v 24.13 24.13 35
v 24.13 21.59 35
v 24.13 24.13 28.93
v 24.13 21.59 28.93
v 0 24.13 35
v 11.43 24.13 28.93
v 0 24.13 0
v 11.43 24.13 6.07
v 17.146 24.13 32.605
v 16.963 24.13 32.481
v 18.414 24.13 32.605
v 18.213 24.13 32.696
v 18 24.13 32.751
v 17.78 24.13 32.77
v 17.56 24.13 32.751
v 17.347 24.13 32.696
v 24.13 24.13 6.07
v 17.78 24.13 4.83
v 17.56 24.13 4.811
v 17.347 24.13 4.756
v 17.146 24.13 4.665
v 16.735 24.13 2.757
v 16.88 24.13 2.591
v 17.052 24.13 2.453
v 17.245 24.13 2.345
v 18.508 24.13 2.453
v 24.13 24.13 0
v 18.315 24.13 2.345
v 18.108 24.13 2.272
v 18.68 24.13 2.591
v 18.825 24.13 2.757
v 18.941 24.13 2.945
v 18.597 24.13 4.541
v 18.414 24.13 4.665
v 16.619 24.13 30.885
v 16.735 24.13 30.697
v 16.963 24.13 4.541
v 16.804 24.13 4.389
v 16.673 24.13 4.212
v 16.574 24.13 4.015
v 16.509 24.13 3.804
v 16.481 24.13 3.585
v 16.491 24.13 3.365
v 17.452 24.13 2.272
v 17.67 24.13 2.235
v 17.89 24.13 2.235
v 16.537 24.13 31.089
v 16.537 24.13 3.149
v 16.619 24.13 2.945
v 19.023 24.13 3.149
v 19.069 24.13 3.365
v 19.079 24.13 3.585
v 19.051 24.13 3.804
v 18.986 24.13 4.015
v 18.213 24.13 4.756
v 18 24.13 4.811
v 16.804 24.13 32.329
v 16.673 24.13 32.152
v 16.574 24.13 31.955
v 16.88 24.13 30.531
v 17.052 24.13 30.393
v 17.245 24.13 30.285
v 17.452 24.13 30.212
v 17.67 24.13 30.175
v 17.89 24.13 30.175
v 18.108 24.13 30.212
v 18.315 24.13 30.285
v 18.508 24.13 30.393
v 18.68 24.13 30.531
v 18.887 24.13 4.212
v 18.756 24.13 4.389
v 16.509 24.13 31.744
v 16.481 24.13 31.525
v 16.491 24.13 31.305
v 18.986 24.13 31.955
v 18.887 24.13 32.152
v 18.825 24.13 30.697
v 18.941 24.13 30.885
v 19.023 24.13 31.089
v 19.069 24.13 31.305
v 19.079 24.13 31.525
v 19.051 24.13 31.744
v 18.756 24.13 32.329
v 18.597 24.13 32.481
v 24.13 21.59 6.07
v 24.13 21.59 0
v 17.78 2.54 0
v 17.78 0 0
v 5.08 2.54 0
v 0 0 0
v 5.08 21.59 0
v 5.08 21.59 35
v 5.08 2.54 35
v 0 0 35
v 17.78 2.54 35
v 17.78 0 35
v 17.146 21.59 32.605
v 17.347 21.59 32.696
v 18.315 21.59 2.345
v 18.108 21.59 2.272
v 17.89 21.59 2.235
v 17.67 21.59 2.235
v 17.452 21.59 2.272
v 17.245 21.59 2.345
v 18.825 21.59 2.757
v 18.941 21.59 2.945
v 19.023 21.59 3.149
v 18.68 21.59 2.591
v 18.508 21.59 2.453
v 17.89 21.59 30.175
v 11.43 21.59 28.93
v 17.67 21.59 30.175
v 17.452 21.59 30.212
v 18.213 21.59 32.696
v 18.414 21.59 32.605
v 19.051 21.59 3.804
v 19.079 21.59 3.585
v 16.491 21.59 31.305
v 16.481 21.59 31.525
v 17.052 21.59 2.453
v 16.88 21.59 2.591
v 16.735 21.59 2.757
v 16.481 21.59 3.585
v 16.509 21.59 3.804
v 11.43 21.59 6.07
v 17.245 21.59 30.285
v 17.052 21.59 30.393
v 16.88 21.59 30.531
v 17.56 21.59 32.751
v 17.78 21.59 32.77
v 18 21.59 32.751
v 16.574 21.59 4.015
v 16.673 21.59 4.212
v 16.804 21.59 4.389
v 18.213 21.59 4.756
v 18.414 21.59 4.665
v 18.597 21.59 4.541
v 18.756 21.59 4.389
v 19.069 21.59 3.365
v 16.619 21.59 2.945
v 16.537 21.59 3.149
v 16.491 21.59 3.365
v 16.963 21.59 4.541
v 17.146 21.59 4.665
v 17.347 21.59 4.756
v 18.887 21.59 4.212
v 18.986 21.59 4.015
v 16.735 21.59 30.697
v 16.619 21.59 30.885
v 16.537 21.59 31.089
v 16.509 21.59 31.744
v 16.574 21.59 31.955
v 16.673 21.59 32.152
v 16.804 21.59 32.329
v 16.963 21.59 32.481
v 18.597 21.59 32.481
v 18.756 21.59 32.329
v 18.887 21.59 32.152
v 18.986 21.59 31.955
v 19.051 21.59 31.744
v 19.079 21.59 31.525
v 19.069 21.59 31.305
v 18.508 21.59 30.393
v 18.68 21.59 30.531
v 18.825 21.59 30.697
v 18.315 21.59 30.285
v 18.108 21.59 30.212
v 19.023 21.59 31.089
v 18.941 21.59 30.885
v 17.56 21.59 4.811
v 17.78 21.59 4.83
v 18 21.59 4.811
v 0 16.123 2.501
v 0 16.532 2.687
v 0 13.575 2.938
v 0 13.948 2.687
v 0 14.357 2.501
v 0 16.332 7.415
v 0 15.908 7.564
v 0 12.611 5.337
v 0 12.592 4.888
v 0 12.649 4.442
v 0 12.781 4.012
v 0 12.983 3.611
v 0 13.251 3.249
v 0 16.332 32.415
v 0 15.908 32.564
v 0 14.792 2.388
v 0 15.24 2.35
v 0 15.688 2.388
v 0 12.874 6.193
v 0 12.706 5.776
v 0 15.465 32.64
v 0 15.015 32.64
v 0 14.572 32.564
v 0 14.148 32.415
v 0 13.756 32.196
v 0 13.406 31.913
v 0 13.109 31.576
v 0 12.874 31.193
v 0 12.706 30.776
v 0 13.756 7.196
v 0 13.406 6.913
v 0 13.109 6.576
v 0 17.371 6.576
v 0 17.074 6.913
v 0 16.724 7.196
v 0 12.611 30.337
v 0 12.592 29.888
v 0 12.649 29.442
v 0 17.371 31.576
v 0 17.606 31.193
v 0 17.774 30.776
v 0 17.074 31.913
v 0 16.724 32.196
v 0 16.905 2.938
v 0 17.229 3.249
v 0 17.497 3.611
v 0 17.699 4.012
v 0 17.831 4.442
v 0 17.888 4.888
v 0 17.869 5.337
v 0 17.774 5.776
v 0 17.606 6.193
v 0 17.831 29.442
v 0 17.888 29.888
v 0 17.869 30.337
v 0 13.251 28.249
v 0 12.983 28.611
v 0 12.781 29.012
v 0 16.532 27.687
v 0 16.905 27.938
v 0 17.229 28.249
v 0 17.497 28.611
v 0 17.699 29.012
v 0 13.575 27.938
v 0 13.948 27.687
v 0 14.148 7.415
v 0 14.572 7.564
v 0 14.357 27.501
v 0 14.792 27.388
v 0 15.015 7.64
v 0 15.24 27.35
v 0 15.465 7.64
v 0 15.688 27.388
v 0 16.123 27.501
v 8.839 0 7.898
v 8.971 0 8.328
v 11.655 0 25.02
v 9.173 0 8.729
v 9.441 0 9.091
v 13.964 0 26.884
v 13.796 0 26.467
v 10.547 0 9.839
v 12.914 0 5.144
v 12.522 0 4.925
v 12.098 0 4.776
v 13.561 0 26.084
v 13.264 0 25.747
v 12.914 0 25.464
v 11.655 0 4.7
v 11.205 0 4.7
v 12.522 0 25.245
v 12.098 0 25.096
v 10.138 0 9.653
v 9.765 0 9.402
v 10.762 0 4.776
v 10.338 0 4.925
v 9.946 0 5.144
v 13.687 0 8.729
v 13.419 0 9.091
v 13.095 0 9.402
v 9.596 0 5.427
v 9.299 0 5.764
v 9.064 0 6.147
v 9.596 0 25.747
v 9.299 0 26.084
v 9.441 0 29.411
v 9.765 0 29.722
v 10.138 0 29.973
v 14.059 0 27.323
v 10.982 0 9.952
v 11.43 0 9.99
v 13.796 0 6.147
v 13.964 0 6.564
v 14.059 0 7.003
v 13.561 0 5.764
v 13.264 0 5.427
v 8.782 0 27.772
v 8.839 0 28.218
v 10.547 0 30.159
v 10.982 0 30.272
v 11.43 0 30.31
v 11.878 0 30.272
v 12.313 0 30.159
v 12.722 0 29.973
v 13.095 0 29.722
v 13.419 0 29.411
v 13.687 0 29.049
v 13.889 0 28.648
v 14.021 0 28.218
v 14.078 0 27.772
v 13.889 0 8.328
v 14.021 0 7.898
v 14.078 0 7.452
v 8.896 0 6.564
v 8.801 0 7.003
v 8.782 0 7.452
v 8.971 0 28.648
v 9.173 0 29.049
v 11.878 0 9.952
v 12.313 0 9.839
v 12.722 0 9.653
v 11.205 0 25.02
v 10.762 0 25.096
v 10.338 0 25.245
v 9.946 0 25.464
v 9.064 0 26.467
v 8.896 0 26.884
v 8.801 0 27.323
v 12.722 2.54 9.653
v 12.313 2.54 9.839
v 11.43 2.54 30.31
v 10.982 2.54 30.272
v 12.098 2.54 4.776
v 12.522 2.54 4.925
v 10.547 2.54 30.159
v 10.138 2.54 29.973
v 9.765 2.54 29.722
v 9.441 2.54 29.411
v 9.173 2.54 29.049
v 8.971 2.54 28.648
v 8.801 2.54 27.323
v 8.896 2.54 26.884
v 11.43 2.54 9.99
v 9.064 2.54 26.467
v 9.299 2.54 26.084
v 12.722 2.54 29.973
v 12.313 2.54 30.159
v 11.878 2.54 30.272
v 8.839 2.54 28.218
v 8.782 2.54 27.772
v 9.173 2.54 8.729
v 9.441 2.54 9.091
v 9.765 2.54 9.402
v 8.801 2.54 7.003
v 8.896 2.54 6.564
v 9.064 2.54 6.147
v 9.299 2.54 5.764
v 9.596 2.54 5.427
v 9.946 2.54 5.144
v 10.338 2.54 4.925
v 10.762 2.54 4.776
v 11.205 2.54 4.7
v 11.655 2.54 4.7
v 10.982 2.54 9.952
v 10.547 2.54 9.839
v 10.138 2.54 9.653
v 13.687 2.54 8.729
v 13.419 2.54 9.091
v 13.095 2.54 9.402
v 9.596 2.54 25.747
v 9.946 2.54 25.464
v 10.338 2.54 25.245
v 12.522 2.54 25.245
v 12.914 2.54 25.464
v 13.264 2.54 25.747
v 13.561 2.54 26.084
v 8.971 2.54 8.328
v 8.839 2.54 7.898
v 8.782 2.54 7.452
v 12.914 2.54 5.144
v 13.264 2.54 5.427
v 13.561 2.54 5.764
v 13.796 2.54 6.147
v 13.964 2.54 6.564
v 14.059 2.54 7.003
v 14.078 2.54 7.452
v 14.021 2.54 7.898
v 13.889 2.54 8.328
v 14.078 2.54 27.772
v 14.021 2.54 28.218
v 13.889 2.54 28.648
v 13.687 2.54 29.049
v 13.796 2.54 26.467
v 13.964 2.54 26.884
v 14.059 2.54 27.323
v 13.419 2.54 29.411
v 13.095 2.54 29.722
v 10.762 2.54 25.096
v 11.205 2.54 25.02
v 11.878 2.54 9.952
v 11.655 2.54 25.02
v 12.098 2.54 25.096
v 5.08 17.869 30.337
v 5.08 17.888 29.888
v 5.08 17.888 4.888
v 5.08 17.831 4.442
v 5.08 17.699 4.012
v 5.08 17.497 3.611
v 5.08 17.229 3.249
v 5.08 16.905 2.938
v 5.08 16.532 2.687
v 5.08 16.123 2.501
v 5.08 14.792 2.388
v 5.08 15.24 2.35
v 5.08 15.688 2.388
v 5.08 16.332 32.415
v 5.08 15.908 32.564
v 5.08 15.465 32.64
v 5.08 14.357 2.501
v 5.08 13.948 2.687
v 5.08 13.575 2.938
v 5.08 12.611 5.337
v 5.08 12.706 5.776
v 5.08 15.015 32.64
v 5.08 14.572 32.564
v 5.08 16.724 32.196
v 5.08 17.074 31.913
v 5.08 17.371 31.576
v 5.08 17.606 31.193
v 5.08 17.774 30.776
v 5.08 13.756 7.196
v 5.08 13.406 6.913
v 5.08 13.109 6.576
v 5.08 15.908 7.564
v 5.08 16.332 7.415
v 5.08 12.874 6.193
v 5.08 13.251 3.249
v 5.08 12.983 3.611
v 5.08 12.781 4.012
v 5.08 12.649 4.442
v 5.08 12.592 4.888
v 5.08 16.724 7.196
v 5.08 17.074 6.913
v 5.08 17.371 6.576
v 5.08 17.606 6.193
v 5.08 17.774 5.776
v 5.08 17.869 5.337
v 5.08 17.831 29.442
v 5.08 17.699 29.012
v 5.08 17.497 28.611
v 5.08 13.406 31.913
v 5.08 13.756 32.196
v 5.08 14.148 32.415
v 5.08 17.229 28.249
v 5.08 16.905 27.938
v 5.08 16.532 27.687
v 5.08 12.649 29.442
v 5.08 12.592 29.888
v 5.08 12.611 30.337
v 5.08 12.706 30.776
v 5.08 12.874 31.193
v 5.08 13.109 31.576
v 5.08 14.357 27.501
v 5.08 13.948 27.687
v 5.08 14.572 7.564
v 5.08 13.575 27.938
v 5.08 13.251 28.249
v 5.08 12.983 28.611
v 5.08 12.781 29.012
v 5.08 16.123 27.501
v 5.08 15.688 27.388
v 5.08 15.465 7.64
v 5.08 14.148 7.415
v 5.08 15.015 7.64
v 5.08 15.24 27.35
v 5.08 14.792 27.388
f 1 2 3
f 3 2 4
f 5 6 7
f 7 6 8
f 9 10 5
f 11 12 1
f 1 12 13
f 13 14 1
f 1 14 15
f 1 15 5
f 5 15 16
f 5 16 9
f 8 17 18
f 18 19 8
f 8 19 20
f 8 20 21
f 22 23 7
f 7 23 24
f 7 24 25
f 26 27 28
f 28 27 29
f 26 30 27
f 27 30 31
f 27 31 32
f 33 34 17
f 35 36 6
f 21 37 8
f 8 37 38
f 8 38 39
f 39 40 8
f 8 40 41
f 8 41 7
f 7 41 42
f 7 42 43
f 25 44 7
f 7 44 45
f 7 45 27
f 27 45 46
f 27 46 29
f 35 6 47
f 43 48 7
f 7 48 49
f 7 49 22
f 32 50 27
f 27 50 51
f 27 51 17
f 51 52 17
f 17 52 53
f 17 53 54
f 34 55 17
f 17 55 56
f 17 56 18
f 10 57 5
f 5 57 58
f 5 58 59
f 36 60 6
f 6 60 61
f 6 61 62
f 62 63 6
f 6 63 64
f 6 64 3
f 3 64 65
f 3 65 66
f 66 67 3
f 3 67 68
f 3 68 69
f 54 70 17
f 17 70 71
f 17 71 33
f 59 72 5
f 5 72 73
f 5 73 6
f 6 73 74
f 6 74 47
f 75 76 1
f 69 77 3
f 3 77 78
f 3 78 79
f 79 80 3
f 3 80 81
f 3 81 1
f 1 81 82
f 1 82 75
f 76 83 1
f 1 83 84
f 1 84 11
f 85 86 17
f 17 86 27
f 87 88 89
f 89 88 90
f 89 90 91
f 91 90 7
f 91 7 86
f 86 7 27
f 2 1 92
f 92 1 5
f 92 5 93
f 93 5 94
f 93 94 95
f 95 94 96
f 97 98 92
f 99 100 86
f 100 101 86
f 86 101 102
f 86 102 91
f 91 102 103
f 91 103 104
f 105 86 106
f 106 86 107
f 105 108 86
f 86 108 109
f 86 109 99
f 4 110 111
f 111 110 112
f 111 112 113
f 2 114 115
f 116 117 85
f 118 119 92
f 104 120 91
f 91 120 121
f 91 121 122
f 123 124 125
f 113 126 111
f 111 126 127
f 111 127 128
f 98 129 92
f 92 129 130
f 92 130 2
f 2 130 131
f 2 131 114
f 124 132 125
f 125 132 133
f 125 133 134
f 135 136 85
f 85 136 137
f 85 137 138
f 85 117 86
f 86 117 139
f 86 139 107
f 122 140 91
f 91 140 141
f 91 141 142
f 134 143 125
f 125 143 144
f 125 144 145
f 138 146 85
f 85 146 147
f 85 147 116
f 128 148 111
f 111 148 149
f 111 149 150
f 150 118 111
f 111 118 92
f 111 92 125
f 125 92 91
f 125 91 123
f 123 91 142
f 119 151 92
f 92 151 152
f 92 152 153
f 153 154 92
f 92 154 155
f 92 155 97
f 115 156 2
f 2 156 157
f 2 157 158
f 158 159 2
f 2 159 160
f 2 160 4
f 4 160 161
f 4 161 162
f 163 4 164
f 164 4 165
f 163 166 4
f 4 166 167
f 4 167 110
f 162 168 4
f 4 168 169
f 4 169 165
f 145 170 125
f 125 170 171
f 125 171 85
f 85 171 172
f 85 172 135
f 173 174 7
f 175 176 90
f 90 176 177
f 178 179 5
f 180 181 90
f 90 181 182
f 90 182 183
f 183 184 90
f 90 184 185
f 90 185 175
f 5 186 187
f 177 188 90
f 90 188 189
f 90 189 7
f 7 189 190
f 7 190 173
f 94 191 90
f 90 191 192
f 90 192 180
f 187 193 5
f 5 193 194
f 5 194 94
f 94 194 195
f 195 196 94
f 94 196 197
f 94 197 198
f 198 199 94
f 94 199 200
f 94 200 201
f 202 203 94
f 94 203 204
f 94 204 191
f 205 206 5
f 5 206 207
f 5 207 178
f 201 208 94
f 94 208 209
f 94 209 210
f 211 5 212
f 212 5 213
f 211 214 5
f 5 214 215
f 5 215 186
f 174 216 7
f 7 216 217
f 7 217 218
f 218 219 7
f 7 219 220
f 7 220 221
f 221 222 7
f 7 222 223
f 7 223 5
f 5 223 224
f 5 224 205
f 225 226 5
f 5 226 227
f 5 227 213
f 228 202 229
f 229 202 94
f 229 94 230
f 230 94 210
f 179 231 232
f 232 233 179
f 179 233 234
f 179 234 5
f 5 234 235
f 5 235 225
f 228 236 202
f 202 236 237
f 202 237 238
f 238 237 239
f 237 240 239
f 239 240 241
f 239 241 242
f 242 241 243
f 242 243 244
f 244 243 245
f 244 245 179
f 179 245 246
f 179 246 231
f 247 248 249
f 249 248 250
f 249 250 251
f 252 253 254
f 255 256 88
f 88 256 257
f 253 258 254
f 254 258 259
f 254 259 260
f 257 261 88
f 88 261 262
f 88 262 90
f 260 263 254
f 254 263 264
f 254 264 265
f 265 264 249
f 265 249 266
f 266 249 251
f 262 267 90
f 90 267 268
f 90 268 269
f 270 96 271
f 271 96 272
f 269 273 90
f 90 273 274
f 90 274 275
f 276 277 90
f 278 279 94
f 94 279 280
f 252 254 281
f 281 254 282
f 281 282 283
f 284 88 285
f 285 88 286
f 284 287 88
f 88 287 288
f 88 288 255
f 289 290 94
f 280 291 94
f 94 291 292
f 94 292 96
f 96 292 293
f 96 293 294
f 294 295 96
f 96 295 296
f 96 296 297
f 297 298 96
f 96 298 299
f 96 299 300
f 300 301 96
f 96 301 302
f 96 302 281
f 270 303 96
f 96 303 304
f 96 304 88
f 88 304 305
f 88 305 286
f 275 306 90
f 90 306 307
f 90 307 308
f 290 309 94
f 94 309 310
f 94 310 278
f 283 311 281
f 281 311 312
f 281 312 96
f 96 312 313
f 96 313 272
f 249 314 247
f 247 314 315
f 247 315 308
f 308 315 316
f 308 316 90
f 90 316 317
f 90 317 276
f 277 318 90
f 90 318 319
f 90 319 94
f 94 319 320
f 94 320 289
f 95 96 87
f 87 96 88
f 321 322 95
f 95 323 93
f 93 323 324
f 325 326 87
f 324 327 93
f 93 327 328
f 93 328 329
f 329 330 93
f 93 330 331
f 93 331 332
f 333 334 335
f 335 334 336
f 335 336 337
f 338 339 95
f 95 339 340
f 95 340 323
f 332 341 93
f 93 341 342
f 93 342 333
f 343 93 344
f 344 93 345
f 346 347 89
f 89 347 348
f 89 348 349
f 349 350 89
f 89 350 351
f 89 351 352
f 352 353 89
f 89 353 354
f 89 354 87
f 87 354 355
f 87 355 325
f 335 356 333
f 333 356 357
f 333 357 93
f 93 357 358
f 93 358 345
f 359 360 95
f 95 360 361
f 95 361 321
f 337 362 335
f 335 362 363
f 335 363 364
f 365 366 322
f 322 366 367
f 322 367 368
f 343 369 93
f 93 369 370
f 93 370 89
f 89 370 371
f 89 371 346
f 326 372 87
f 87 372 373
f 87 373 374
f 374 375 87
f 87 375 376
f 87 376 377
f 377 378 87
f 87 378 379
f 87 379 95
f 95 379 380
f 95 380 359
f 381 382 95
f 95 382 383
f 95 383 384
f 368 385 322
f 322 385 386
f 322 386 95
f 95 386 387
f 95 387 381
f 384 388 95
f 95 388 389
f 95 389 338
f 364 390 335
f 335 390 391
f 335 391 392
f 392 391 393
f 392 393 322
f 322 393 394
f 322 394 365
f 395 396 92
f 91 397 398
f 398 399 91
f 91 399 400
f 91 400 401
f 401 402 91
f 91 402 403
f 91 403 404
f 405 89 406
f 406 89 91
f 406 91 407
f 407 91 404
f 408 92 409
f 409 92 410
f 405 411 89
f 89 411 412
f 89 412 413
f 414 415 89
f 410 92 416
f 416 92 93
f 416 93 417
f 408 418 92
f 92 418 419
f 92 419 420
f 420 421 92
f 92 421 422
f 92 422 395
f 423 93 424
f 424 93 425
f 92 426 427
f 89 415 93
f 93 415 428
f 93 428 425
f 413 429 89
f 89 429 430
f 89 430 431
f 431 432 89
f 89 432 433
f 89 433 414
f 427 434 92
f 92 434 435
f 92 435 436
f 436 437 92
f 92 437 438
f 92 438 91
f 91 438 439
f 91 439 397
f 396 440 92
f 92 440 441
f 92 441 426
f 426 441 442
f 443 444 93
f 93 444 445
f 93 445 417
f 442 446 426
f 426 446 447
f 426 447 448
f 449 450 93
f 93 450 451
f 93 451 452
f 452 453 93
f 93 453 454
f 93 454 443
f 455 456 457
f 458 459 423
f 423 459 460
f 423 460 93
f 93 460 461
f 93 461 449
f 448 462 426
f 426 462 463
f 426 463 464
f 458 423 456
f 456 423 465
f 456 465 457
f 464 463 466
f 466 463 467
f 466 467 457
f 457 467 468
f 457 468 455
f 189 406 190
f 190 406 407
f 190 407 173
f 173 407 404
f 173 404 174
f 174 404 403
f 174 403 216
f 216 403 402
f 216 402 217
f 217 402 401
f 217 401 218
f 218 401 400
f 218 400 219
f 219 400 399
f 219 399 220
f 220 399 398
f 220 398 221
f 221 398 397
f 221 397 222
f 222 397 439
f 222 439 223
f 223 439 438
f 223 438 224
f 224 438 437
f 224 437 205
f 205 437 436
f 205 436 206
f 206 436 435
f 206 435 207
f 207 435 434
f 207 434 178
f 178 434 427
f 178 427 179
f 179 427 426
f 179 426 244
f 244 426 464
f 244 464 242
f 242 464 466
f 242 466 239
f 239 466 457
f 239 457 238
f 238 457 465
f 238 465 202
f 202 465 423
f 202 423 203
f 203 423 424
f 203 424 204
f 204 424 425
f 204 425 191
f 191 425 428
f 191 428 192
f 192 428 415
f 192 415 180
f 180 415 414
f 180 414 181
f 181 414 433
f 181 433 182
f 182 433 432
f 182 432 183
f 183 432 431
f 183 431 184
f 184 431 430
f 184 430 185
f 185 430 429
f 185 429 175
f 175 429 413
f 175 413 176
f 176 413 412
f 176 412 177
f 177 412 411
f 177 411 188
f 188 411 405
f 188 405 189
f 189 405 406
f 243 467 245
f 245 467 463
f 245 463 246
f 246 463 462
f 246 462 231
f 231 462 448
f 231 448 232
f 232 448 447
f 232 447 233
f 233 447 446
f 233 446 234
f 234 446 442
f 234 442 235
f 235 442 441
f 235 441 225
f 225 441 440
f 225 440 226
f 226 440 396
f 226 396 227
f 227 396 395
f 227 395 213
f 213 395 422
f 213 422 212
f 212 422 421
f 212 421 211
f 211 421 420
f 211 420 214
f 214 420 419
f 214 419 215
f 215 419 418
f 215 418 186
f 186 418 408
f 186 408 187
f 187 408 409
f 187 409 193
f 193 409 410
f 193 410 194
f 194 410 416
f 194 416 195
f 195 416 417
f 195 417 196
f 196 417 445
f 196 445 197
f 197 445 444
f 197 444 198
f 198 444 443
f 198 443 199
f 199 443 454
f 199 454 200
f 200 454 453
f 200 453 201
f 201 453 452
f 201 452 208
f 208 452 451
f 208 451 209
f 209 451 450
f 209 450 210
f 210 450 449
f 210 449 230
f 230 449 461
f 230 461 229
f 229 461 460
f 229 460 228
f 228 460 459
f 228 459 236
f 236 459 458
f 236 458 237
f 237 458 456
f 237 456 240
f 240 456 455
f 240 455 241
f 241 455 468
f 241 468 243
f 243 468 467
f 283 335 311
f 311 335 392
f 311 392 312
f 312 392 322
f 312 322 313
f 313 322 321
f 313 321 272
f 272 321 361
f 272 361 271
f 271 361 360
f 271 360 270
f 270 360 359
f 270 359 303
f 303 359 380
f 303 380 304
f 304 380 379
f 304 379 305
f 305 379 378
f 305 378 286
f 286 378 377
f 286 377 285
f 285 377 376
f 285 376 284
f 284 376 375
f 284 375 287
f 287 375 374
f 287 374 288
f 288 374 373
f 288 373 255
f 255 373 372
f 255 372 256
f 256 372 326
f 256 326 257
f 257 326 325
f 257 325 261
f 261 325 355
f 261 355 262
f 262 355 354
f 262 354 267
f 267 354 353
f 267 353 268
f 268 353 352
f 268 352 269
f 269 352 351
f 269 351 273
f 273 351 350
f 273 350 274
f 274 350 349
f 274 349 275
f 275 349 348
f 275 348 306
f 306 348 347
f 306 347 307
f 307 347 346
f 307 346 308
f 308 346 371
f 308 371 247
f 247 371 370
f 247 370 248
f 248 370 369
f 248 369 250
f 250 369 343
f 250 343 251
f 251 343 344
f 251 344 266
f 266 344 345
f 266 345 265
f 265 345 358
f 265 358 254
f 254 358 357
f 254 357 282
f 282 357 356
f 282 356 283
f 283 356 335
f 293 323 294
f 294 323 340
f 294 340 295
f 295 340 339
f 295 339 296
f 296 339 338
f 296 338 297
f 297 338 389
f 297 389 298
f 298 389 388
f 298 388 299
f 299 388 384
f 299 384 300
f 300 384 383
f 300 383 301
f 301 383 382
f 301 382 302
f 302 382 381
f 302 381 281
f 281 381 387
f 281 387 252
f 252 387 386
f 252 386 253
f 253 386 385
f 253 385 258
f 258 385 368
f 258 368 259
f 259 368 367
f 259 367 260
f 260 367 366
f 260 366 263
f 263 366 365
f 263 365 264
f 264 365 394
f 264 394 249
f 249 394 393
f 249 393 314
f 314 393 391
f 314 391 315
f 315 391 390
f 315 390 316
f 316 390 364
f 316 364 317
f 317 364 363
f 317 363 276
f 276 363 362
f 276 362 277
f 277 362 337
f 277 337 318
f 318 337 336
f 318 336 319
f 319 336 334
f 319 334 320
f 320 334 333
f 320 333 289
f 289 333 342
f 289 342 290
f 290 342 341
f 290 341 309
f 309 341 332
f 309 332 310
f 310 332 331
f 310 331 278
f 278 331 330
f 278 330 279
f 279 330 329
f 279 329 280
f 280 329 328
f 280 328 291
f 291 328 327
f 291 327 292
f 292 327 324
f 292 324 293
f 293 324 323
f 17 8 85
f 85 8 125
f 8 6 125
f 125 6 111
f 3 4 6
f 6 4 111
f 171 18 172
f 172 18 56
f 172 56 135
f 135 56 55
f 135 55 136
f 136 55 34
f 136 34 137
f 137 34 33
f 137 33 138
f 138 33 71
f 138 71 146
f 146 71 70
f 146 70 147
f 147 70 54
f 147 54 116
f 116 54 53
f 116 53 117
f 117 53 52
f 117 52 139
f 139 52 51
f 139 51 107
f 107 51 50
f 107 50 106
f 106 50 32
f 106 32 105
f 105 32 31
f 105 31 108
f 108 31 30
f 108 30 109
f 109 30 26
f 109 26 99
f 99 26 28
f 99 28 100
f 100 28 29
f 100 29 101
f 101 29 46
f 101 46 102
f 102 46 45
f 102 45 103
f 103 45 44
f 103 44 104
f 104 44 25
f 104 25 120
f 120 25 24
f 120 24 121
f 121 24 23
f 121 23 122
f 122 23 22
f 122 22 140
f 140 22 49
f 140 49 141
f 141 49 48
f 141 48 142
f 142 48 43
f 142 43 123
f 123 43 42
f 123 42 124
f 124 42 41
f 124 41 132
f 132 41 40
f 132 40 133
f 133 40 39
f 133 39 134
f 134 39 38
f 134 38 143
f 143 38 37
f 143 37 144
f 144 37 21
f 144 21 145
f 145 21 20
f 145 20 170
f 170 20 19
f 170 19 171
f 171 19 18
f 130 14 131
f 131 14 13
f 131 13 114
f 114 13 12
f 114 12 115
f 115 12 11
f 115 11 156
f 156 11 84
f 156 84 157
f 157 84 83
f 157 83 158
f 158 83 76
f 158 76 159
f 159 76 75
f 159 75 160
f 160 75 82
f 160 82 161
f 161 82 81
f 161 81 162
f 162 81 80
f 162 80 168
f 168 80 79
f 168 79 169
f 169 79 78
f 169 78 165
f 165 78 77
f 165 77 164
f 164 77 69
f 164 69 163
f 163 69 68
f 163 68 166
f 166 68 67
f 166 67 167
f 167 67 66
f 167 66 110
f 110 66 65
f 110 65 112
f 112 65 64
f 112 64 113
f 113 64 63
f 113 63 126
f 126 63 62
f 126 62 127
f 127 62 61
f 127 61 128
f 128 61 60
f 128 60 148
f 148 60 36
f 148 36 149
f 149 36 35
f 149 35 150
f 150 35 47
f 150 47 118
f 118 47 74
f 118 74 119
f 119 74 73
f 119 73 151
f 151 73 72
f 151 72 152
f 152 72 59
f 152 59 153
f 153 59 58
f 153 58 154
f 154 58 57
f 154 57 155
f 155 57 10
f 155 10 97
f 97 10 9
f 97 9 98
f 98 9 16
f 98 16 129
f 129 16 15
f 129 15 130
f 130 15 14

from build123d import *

# Parameters (mm, degrees)
SKETCH1_W                 = 5.08
SKETCH1_H                 = 19.05
BOSS_EXTRUDE1_DEPTH       = 35
F_5_0MM_DOWEL_HOLE1_D     = 5.3
F_5_0MM_DOWEL_HOLE2_D     = 5.3
F_5_0MM_DOWEL_HOLE2_DEPTH = 2.54
CUT_EXTRUDE1_REACH        = 50.883
SKETCH6_W                 = 12.7
SKETCH6_H                 = 22.86
M2_CLEARANCE_HOLE1_D      = 2.6
M2_CLEARANCE_HOLE1_DEPTH  = 2.54


with BuildPart() as part:
    # Sketch1 → Boss-Extrude1 (new body)
    with BuildSketch(Plane.XY):
        Polygon((0, 2.54), (0, 0), (17.78, 0), (17.78, 2.54), (5.08, 2.54), align=None)
        with Locations((2.54, 12.065)):
            Rectangle(SKETCH1_W, SKETCH1_H)
        Polygon((0, 24.13), (0, 21.59), (5.08, 21.59), (24.13, 21.59), (24.13, 24.13), align=None)
    extrude(amount=BOSS_EXTRUDE1_DEPTH)

    # Ø5.0mm Dowel Hole1 (through all)
    with Locations(Plane(origin=(5.08, 0, 0), x_dir=(0, 0, -1), z_dir=(1, 0, 0))):
        with Locations((-30, 15.24), (-5, 15.24)):
            Hole(F_5_0MM_DOWEL_HOLE1_D / 2)

    # Ø5.0mm Dowel Hole2
    with Locations(Plane(origin=(0, 2.54, 0), x_dir=(1, 0, 0), z_dir=(0, 1, 0))):
        with Locations((11.43, -27.66), (11.43, -7.34)):
            Hole(F_5_0MM_DOWEL_HOLE2_D / 2, depth=F_5_0MM_DOWEL_HOLE2_DEPTH)

    # Sketch6 → Cut-Extrude1 (cut, up to next)
    with BuildSketch(Plane(origin=(0, 24.13, 0), x_dir=(1, 0, 0), z_dir=(0, 1, 0)), mode=Mode.PRIVATE) as cut_extrude1_sk1:
        with Locations((17.78, -17.5)):
            Rectangle(SKETCH6_W, SKETCH6_H)
    cut_extrude1_tool1 = extrude(cut_extrude1_sk1.sketch, amount=-CUT_EXTRUDE1_REACH, mode=Mode.PRIVATE) & part.part
    add(cut_extrude1_tool1.solids().sort_by_distance((17.78, 24.13, 17.5))[0], mode=Mode.SUBTRACT)

    # M2 Clearance Hole1
    with Locations(Plane(origin=(0, 24.13, 0), x_dir=(1, 0, 0), z_dir=(0, 1, 0))):
        with Locations((17.78, -31.47), (17.78, -3.53)):
            Hole(M2_CLEARANCE_HOLE1_D / 2, depth=M2_CLEARANCE_HOLE1_DEPTH)


solid = part.part
